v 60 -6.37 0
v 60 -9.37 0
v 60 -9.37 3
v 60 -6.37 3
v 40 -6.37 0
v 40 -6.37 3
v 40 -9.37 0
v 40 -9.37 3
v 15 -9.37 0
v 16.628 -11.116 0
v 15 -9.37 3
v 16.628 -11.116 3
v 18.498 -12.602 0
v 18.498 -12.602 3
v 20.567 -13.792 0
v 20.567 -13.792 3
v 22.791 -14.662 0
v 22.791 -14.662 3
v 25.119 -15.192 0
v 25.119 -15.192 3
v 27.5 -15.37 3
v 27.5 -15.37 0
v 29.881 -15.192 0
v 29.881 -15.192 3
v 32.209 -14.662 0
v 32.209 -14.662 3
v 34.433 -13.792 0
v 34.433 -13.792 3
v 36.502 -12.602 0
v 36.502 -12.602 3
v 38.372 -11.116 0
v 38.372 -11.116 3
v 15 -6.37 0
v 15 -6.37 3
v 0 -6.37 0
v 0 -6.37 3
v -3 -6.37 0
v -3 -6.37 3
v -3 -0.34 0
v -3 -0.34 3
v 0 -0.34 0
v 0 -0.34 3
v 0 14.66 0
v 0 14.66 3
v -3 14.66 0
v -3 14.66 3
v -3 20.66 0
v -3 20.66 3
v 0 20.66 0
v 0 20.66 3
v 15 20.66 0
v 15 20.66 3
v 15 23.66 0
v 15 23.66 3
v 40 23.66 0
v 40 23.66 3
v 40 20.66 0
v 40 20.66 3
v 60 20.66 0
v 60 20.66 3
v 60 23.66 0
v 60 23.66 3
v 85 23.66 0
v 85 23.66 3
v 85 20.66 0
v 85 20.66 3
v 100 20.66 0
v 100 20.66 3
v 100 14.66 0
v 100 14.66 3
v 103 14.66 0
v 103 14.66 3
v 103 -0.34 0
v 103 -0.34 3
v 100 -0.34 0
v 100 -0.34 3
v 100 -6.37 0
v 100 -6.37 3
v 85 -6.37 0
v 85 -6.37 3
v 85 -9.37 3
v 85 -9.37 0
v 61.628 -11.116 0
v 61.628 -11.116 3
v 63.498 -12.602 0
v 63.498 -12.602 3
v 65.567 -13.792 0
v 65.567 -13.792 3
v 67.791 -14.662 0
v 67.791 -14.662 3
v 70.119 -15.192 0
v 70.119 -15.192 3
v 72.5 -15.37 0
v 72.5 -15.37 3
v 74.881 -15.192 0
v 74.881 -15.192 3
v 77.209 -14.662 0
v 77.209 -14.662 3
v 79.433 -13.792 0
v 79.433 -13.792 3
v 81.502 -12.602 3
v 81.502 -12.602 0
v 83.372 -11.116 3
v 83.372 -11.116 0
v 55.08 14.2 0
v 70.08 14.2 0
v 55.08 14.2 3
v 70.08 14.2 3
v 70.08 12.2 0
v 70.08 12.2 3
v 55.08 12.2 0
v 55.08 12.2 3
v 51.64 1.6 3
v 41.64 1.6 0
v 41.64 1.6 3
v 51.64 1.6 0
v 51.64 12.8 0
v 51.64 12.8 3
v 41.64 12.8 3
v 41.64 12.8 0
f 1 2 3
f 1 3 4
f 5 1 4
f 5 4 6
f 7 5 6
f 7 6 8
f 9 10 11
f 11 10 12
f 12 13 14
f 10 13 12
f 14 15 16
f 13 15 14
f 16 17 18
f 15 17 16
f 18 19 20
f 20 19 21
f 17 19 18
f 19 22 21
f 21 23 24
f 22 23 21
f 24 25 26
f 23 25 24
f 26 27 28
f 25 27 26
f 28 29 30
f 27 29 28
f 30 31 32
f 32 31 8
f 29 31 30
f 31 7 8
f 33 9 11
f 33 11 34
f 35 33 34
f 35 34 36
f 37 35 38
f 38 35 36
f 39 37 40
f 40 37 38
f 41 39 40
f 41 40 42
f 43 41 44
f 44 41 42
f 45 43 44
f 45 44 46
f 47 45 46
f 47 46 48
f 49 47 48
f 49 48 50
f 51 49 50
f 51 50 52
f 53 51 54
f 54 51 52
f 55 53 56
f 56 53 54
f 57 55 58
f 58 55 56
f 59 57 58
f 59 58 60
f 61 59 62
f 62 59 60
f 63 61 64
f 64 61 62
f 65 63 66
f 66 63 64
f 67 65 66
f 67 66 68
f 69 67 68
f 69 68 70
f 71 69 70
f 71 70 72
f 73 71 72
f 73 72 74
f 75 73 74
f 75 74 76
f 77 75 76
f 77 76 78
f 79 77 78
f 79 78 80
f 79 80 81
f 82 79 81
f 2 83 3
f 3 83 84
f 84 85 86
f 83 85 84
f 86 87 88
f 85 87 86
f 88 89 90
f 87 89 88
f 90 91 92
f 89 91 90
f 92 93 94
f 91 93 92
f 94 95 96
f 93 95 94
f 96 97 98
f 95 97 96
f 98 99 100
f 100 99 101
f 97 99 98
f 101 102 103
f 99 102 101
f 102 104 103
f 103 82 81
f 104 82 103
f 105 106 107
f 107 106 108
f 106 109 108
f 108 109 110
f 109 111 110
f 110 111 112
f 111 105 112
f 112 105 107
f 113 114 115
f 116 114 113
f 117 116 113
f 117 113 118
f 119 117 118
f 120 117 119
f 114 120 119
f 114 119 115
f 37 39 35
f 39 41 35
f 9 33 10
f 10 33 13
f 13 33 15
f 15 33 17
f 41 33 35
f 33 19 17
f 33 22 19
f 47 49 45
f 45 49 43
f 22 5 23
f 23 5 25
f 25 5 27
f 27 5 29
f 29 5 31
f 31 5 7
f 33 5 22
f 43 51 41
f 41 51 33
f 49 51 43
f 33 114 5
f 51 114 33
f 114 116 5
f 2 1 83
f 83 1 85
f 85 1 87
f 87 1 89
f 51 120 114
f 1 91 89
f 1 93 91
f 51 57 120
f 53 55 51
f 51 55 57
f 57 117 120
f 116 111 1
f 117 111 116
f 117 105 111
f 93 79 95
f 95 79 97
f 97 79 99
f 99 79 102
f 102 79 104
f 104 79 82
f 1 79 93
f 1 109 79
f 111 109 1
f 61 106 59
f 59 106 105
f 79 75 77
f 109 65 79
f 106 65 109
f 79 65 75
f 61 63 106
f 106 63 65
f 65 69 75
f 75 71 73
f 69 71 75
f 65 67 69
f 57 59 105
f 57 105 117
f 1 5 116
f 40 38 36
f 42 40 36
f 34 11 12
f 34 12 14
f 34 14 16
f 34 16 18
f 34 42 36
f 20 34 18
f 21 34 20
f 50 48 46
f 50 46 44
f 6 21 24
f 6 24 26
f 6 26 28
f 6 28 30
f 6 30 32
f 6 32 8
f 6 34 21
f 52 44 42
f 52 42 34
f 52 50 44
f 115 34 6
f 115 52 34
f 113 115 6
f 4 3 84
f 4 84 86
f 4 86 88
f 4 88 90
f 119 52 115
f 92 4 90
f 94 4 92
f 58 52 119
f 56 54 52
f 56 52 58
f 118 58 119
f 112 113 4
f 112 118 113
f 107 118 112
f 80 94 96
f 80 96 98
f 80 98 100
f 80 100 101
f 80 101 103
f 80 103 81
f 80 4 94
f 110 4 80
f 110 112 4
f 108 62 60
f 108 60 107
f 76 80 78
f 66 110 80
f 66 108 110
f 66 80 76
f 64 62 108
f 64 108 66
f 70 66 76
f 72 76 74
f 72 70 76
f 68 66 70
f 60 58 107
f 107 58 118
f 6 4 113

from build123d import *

# Parameters (mm, degrees)
SKETCH_W      = 10
SKETCH_H      = 11.2
SKETCH_W_2    = 15
SKETCH_H_2    = 2
EXTRUDE_DEPTH = 3


with BuildPart() as part:
    # Sketch → Extrude (new body)
    with BuildSketch(Plane.XY):
        with BuildLine():
            Line((40, -6.37), (40, -9.37))
            ThreePointArc((15, -9.37), (27.5, -15.37), (40, -9.37))
            Line((15, -9.37), (15, -6.37))
            Line((15, -6.37), (0, -6.37))
            Line((-3, -6.37), (0, -6.37))
            Line((-3, -0.34), (-3, -6.37))
            Line((-3, -0.34), (0, -0.34))
            Line((0, 14.66), (0, -0.34))
            Line((0, 14.66), (-3, 14.66))
            Line((-3, 14.66), (-3, 20.66))
            Line((-3, 20.66), (0, 20.66))
            Line((0, 20.66), (15, 20.66))
            Line((15, 23.66), (15, 20.66))
            Line((40, 23.66), (15, 23.66))
            Line((40, 20.66), (40, 23.66))
            Line((40, 20.66), (60, 20.66))
            Line((60, 23.66), (60, 20.66))
            Line((85, 23.66), (60, 23.66))
            Line((85, 20.66), (85, 23.66))
            Line((85, 20.66), (100, 20.66))
            Line((100, 20.66), (100, 14.66))
            Line((100, 14.66), (103, 14.66))
            Line((103, 14.66), (103, -0.34))
            Line((103, -0.34), (100, -0.34))
            Line((100, -0.34), (100, -6.37))
            Line((100, -6.37), (85, -6.37))
            Line((85, -6.37), (85, -9.37))
            ThreePointArc((60, -9.37), (72.5, -15.37), (85, -9.37))
            Line((60, -9.37), (60, -6.37))
            Line((60, -6.37), (40, -6.37))
        make_face()
        with Locations((46.64, 7.2)):
            Rectangle(SKETCH_W, SKETCH_H, mode=Mode.SUBTRACT)
        with Locations((62.58, 13.2)):
            Rectangle(SKETCH_W_2, SKETCH_H_2, mode=Mode.SUBTRACT)
    extrude(amount=EXTRUDE_DEPTH)


solid = part.part
